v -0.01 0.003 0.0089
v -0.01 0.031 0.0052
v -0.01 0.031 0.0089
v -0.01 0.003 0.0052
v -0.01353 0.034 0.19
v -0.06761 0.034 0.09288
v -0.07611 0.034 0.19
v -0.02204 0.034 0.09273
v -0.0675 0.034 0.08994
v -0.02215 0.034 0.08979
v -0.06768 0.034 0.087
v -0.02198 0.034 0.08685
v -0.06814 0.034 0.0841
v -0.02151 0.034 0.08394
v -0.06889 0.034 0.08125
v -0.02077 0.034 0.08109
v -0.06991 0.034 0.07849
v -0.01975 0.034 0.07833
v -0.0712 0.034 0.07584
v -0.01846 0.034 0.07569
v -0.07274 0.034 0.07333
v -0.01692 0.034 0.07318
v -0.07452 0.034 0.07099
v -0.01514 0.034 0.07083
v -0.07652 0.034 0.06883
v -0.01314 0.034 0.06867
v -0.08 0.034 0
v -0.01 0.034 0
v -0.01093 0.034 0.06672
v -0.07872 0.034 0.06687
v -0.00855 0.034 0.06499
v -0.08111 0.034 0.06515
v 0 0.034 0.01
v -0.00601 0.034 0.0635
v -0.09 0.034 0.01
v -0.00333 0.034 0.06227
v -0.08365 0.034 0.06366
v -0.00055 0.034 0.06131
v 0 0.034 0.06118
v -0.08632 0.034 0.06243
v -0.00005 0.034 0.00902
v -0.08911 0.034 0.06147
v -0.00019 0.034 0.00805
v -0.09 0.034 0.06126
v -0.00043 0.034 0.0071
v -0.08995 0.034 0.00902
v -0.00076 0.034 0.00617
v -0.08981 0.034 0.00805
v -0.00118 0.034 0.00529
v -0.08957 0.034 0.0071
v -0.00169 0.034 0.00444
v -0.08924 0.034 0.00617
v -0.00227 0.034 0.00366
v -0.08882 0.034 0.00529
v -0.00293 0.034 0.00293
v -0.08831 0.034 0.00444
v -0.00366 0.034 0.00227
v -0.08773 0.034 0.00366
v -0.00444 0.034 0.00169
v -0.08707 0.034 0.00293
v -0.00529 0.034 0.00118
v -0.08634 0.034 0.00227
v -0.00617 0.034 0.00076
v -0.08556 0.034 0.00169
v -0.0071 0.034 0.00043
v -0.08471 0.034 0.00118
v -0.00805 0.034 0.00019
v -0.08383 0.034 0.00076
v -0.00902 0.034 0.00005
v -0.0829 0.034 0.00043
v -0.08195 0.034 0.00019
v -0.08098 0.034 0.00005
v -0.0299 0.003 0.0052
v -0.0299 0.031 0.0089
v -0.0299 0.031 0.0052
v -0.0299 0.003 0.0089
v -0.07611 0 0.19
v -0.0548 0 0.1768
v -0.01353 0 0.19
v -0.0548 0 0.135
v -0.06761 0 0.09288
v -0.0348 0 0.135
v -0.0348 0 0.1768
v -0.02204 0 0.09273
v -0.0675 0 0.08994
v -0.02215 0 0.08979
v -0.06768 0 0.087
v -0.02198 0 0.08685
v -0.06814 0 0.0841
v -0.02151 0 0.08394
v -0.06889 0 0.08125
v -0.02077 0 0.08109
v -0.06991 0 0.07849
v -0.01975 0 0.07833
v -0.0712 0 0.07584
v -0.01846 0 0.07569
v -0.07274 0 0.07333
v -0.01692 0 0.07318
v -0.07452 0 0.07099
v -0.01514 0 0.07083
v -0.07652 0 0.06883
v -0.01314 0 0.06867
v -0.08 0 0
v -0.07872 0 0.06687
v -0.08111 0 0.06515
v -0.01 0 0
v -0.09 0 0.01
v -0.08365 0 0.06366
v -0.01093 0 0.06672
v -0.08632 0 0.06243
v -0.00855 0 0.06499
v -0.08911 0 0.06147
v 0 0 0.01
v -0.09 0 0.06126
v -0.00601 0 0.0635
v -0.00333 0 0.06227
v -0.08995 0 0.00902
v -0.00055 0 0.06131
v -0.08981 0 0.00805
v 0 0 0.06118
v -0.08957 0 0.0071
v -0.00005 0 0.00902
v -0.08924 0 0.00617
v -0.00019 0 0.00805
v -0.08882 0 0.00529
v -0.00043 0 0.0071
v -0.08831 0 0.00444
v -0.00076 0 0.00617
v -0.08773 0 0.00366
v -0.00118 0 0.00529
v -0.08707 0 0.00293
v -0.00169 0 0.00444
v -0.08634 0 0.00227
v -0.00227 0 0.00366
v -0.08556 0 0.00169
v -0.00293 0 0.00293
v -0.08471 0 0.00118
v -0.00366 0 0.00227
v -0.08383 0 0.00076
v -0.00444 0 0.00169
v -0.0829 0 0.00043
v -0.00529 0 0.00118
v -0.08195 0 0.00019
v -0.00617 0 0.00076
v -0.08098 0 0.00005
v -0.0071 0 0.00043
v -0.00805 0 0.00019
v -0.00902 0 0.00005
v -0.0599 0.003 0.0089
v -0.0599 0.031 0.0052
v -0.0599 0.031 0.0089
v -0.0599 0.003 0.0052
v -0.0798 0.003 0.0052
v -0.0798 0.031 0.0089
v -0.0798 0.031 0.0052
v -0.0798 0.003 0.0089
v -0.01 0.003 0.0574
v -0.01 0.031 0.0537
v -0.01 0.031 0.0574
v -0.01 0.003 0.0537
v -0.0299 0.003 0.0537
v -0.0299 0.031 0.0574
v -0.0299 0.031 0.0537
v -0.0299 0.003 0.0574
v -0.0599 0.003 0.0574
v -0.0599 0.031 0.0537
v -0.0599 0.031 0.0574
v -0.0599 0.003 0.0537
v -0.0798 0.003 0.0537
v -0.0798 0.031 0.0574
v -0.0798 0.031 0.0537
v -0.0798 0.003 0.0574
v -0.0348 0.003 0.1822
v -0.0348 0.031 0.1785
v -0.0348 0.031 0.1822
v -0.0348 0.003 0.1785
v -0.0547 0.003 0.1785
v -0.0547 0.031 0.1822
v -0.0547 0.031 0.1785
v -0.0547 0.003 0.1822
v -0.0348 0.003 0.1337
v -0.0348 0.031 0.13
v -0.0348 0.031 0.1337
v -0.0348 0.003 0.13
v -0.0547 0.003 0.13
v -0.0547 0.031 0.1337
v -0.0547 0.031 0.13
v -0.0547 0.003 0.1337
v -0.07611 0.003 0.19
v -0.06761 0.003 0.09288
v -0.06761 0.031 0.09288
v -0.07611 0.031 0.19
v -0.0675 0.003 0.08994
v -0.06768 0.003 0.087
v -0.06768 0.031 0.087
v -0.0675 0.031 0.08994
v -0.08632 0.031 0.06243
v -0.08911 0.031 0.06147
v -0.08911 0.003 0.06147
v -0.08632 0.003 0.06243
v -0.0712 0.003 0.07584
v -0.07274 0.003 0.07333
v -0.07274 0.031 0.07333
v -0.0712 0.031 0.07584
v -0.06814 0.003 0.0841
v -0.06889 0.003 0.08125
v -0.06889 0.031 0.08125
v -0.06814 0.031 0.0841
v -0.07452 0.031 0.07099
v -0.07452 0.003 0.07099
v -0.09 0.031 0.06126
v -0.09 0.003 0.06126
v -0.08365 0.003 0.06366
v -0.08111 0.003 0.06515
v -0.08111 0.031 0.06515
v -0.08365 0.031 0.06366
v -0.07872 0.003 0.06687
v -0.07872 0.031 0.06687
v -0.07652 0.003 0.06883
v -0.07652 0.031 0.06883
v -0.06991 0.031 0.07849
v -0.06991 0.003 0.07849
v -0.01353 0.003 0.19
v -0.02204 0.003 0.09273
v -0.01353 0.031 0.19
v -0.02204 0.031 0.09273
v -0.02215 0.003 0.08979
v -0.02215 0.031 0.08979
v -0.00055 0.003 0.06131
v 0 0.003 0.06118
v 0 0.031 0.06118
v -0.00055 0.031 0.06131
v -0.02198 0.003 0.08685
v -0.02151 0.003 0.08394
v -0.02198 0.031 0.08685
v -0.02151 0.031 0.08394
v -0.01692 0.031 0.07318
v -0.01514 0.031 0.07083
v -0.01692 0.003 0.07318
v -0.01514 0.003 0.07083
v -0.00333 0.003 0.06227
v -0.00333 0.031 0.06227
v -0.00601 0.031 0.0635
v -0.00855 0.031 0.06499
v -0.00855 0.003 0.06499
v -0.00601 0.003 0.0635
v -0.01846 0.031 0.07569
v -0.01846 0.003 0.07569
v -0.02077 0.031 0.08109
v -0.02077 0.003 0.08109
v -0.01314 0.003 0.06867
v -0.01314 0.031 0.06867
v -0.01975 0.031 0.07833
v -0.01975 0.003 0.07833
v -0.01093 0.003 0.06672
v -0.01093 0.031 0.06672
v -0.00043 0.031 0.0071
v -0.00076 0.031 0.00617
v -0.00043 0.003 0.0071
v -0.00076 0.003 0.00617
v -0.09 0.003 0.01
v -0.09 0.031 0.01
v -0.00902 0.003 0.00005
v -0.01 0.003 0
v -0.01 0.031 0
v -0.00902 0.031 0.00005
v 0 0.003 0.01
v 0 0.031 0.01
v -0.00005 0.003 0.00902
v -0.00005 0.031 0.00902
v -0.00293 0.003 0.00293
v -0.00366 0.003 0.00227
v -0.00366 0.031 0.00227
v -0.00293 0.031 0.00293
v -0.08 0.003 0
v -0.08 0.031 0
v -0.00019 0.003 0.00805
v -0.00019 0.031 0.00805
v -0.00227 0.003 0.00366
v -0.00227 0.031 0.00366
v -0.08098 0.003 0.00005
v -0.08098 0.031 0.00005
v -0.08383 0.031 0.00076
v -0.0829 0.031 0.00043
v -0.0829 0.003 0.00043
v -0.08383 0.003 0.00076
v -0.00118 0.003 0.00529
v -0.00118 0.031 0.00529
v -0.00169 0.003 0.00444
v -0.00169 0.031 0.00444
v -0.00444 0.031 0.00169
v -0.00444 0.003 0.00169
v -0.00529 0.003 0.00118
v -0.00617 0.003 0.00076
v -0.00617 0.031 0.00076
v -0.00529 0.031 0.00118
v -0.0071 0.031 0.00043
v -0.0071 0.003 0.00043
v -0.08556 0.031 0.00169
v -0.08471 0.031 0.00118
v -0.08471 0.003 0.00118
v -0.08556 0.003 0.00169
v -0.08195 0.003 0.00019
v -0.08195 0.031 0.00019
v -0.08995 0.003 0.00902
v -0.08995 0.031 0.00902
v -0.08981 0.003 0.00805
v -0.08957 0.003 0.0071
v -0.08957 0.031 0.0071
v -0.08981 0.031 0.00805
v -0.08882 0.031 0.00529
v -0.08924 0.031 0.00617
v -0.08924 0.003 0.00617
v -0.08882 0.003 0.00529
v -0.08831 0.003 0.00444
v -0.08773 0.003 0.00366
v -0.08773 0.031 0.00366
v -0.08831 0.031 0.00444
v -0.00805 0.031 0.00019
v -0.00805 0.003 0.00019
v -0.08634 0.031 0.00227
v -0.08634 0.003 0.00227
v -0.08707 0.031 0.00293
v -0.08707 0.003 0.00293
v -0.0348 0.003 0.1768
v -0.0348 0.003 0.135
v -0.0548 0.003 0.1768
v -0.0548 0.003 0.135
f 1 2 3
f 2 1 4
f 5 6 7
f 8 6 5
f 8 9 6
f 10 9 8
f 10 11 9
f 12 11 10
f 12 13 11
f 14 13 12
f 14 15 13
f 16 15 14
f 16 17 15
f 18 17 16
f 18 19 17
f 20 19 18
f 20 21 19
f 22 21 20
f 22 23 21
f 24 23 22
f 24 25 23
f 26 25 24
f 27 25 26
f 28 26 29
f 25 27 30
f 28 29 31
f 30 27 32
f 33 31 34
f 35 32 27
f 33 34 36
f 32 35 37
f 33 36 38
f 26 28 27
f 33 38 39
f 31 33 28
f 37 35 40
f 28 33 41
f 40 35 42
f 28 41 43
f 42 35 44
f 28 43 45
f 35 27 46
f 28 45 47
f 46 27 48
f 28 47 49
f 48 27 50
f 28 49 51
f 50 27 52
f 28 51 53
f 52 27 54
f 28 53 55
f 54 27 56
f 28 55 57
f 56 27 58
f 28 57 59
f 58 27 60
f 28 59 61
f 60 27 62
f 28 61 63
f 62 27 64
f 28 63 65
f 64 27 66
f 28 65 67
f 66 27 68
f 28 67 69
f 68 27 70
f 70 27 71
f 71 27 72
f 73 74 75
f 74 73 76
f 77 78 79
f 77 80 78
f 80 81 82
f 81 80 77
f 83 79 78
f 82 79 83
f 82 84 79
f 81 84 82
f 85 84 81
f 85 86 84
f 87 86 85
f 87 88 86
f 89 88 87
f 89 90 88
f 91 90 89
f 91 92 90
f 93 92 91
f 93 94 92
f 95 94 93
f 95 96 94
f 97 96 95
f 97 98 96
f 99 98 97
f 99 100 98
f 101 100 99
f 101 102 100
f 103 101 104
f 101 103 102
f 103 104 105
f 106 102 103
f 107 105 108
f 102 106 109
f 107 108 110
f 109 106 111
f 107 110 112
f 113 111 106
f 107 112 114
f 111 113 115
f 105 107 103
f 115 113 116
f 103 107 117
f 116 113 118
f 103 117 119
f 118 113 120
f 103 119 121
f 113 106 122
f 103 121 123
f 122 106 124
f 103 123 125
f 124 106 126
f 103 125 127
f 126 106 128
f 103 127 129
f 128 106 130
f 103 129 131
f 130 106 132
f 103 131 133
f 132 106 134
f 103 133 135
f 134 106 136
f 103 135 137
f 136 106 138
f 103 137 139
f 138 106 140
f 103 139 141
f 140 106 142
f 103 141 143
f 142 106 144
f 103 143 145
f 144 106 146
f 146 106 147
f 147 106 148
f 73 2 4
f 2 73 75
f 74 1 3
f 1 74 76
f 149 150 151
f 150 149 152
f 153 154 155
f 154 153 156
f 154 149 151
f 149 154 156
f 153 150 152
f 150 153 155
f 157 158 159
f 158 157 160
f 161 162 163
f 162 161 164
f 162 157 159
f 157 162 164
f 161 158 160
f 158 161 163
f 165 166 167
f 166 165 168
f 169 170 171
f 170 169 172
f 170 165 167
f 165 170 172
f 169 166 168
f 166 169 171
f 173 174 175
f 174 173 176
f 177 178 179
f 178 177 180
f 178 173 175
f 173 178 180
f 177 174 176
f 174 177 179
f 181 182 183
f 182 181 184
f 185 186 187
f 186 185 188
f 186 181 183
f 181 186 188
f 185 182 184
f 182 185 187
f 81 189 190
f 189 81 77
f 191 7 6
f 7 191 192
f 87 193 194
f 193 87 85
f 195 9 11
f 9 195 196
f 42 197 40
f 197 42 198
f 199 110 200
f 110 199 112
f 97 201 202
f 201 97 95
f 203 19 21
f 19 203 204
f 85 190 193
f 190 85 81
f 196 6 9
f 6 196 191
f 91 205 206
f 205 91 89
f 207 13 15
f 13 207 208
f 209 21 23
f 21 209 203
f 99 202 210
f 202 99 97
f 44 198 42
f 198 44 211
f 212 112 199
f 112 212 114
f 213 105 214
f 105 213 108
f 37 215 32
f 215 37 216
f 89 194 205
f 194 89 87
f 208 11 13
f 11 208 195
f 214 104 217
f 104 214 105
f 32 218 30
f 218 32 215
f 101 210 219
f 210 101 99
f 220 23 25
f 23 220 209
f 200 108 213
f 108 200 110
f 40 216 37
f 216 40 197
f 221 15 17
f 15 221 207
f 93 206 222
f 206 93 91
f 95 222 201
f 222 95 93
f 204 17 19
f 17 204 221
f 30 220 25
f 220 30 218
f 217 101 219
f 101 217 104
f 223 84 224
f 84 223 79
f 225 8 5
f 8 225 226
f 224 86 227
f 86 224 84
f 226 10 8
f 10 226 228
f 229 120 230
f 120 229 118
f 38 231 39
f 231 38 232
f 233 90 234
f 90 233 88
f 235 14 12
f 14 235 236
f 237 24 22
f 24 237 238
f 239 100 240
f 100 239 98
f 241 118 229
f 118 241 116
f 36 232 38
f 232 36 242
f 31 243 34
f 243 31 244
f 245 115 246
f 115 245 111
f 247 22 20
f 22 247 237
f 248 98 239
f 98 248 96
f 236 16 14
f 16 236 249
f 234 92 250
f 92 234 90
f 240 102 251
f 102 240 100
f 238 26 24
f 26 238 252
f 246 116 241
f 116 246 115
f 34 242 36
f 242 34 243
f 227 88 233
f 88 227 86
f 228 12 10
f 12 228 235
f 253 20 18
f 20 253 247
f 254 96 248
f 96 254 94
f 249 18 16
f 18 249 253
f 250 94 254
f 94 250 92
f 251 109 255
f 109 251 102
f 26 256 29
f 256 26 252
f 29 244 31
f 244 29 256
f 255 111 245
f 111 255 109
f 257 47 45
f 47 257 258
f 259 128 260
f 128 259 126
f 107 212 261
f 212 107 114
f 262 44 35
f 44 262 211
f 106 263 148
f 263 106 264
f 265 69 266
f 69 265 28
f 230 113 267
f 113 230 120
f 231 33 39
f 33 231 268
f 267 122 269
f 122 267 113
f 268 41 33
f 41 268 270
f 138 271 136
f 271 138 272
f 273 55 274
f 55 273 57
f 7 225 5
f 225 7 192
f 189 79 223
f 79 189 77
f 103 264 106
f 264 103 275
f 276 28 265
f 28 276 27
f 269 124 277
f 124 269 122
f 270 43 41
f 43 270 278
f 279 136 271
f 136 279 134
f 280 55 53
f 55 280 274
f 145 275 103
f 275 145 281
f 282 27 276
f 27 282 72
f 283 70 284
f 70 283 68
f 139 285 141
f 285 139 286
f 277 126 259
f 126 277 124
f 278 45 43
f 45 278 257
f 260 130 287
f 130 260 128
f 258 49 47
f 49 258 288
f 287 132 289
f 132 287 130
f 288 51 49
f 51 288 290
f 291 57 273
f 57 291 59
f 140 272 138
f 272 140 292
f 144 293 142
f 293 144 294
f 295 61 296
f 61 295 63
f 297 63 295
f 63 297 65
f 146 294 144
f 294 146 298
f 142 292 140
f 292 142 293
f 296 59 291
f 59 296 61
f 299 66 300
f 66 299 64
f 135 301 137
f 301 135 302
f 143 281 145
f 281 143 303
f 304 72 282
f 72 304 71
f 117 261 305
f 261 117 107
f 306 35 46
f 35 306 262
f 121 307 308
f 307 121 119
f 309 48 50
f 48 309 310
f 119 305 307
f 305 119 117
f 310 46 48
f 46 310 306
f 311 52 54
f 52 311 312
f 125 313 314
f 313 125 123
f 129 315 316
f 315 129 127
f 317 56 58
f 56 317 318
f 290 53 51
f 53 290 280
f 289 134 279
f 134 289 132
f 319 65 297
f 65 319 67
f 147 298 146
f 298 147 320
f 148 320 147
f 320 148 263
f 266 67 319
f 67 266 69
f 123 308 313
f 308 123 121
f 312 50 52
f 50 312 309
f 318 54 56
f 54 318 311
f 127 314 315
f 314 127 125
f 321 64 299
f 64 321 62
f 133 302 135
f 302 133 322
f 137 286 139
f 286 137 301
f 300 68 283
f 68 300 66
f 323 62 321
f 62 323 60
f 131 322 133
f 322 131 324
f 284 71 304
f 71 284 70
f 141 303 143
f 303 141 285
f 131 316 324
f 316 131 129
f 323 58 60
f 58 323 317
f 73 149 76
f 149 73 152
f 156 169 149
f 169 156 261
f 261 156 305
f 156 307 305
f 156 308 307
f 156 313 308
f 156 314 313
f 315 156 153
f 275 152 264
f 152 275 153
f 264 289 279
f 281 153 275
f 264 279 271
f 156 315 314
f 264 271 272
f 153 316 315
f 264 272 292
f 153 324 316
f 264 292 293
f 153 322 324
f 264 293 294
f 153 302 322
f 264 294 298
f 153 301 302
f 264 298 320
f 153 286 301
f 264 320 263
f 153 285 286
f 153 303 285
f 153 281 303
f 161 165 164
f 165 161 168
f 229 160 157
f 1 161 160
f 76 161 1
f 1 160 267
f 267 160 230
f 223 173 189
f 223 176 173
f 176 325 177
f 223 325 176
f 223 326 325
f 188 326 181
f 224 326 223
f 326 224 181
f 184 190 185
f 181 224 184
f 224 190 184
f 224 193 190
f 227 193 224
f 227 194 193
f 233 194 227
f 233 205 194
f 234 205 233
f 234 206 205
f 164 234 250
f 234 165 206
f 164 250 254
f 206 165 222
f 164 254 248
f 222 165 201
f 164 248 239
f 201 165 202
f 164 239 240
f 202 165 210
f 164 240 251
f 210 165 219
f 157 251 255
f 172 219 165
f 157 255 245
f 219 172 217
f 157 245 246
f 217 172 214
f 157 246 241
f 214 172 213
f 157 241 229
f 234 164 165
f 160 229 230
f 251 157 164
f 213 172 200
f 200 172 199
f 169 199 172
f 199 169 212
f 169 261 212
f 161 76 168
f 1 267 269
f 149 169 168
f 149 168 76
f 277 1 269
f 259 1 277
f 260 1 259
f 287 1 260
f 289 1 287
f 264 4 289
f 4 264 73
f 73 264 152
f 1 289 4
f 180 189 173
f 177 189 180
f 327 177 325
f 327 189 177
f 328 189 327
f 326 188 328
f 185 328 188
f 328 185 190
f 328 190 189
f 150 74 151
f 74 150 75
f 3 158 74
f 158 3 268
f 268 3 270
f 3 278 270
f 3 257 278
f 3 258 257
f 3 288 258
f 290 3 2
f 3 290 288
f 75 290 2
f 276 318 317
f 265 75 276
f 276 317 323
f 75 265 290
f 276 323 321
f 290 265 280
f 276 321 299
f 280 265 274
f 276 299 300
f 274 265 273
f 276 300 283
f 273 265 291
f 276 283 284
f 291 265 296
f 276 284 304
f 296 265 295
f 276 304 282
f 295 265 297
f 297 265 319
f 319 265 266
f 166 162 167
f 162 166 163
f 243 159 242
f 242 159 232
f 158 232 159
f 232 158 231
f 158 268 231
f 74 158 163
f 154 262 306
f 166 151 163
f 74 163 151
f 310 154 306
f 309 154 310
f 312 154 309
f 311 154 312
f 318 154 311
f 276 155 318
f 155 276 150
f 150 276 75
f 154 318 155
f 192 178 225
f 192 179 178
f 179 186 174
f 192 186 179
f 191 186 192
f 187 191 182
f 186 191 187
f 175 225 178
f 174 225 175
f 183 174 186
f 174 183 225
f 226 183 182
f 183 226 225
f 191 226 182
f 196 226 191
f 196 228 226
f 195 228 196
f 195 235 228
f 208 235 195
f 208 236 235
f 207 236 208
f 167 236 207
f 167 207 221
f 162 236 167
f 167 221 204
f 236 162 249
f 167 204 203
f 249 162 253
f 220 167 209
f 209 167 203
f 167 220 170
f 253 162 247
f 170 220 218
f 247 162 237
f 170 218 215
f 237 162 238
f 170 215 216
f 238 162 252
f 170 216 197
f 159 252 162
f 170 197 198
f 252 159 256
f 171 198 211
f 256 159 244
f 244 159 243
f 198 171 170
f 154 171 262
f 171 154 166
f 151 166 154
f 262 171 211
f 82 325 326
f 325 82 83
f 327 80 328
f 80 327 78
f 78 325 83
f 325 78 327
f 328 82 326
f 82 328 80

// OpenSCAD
$fn = 64;
downConnectorCubes = [0.0199, 0.0037, 0.034];
downTransX = [0.01, 0.0599];
downTransY = [0.0052, 0.0537];
upConnectorCubes = [0.0199, 0.0037, 0.034];
upTransX = [0.0348];
upTransY = [0.1785, 0.13];


rotate([90,0,180]){
    union(){

        // Back-Front pages with empty space
        backAndFrontRectanglesWithSpace();
        
        // Up connectors
        upConnectors(upConnectorCubes, upTransX, upTransY);
        
        // Down connectors
        downConnectors(downConnectorCubes, downTransX, downTransY);
    }
}

module backAndFrontRectanglesWithSpace(){
        difference(){
            roundedcube(0.09, 0.19, 0.034, 0.01);
            translate([0,0, 0.003]){
                roundedcube(0.09, 0.19, 0.028, 0.01);
            }
            translate([0.0348, 0.135, 0]){
               cube([0.02, 0.0418, 0.031]);
            }
        
            // Rounded side
            roundedSide();
        }
    }

module roundedSide(){
        translate([0.065, 0.063, 0]){
            rotate([0, 0, -5]){
                roundedcube(0.09, 0.19, 0.034, 0.03);
            }
        }
            
        translate([-0.065, 0.055, 0]){
            rotate([0, 0, 5]){
                roundedcube(0.09, 0.19, 0.034, 0.03);
            }
        }
    }

module upConnectors(dims, upTransX, upTransY){
        translate([upTransX[0], upTransY[0], 0]){
            cube(dims);
        }
        translate([upTransX[0], upTransY[1], 0]){
            cube(dims);
        }
    }

module downConnectors(dims, transX, transY){
        translate([transX[0], transY[0], 0]){
            cube(dims);
        }
        translate([transX[1], transY[0], 0]){
            cube(dims);
        }
        translate([transX[0], transY[1], 0]){
            cube(dims);
        }
        translate([transX[1], transY[1], 0]){
            cube(dims);
        }
    }

module roundedcube(xdim, ydim, zdim, rdim){    
    hull(){
        translate([rdim, rdim, 0]) cylinder(r=rdim, h=zdim);
        translate([xdim-rdim, rdim, 0]) cylinder(r=rdim, h=zdim);
        
        translate([rdim, ydim-rdim, 0]) cylinder(r=rdim, h=zdim);
        translate([xdim-rdim, ydim-rdim, 0]) cylinder(r=rdim, h=zdim);
    }
}
